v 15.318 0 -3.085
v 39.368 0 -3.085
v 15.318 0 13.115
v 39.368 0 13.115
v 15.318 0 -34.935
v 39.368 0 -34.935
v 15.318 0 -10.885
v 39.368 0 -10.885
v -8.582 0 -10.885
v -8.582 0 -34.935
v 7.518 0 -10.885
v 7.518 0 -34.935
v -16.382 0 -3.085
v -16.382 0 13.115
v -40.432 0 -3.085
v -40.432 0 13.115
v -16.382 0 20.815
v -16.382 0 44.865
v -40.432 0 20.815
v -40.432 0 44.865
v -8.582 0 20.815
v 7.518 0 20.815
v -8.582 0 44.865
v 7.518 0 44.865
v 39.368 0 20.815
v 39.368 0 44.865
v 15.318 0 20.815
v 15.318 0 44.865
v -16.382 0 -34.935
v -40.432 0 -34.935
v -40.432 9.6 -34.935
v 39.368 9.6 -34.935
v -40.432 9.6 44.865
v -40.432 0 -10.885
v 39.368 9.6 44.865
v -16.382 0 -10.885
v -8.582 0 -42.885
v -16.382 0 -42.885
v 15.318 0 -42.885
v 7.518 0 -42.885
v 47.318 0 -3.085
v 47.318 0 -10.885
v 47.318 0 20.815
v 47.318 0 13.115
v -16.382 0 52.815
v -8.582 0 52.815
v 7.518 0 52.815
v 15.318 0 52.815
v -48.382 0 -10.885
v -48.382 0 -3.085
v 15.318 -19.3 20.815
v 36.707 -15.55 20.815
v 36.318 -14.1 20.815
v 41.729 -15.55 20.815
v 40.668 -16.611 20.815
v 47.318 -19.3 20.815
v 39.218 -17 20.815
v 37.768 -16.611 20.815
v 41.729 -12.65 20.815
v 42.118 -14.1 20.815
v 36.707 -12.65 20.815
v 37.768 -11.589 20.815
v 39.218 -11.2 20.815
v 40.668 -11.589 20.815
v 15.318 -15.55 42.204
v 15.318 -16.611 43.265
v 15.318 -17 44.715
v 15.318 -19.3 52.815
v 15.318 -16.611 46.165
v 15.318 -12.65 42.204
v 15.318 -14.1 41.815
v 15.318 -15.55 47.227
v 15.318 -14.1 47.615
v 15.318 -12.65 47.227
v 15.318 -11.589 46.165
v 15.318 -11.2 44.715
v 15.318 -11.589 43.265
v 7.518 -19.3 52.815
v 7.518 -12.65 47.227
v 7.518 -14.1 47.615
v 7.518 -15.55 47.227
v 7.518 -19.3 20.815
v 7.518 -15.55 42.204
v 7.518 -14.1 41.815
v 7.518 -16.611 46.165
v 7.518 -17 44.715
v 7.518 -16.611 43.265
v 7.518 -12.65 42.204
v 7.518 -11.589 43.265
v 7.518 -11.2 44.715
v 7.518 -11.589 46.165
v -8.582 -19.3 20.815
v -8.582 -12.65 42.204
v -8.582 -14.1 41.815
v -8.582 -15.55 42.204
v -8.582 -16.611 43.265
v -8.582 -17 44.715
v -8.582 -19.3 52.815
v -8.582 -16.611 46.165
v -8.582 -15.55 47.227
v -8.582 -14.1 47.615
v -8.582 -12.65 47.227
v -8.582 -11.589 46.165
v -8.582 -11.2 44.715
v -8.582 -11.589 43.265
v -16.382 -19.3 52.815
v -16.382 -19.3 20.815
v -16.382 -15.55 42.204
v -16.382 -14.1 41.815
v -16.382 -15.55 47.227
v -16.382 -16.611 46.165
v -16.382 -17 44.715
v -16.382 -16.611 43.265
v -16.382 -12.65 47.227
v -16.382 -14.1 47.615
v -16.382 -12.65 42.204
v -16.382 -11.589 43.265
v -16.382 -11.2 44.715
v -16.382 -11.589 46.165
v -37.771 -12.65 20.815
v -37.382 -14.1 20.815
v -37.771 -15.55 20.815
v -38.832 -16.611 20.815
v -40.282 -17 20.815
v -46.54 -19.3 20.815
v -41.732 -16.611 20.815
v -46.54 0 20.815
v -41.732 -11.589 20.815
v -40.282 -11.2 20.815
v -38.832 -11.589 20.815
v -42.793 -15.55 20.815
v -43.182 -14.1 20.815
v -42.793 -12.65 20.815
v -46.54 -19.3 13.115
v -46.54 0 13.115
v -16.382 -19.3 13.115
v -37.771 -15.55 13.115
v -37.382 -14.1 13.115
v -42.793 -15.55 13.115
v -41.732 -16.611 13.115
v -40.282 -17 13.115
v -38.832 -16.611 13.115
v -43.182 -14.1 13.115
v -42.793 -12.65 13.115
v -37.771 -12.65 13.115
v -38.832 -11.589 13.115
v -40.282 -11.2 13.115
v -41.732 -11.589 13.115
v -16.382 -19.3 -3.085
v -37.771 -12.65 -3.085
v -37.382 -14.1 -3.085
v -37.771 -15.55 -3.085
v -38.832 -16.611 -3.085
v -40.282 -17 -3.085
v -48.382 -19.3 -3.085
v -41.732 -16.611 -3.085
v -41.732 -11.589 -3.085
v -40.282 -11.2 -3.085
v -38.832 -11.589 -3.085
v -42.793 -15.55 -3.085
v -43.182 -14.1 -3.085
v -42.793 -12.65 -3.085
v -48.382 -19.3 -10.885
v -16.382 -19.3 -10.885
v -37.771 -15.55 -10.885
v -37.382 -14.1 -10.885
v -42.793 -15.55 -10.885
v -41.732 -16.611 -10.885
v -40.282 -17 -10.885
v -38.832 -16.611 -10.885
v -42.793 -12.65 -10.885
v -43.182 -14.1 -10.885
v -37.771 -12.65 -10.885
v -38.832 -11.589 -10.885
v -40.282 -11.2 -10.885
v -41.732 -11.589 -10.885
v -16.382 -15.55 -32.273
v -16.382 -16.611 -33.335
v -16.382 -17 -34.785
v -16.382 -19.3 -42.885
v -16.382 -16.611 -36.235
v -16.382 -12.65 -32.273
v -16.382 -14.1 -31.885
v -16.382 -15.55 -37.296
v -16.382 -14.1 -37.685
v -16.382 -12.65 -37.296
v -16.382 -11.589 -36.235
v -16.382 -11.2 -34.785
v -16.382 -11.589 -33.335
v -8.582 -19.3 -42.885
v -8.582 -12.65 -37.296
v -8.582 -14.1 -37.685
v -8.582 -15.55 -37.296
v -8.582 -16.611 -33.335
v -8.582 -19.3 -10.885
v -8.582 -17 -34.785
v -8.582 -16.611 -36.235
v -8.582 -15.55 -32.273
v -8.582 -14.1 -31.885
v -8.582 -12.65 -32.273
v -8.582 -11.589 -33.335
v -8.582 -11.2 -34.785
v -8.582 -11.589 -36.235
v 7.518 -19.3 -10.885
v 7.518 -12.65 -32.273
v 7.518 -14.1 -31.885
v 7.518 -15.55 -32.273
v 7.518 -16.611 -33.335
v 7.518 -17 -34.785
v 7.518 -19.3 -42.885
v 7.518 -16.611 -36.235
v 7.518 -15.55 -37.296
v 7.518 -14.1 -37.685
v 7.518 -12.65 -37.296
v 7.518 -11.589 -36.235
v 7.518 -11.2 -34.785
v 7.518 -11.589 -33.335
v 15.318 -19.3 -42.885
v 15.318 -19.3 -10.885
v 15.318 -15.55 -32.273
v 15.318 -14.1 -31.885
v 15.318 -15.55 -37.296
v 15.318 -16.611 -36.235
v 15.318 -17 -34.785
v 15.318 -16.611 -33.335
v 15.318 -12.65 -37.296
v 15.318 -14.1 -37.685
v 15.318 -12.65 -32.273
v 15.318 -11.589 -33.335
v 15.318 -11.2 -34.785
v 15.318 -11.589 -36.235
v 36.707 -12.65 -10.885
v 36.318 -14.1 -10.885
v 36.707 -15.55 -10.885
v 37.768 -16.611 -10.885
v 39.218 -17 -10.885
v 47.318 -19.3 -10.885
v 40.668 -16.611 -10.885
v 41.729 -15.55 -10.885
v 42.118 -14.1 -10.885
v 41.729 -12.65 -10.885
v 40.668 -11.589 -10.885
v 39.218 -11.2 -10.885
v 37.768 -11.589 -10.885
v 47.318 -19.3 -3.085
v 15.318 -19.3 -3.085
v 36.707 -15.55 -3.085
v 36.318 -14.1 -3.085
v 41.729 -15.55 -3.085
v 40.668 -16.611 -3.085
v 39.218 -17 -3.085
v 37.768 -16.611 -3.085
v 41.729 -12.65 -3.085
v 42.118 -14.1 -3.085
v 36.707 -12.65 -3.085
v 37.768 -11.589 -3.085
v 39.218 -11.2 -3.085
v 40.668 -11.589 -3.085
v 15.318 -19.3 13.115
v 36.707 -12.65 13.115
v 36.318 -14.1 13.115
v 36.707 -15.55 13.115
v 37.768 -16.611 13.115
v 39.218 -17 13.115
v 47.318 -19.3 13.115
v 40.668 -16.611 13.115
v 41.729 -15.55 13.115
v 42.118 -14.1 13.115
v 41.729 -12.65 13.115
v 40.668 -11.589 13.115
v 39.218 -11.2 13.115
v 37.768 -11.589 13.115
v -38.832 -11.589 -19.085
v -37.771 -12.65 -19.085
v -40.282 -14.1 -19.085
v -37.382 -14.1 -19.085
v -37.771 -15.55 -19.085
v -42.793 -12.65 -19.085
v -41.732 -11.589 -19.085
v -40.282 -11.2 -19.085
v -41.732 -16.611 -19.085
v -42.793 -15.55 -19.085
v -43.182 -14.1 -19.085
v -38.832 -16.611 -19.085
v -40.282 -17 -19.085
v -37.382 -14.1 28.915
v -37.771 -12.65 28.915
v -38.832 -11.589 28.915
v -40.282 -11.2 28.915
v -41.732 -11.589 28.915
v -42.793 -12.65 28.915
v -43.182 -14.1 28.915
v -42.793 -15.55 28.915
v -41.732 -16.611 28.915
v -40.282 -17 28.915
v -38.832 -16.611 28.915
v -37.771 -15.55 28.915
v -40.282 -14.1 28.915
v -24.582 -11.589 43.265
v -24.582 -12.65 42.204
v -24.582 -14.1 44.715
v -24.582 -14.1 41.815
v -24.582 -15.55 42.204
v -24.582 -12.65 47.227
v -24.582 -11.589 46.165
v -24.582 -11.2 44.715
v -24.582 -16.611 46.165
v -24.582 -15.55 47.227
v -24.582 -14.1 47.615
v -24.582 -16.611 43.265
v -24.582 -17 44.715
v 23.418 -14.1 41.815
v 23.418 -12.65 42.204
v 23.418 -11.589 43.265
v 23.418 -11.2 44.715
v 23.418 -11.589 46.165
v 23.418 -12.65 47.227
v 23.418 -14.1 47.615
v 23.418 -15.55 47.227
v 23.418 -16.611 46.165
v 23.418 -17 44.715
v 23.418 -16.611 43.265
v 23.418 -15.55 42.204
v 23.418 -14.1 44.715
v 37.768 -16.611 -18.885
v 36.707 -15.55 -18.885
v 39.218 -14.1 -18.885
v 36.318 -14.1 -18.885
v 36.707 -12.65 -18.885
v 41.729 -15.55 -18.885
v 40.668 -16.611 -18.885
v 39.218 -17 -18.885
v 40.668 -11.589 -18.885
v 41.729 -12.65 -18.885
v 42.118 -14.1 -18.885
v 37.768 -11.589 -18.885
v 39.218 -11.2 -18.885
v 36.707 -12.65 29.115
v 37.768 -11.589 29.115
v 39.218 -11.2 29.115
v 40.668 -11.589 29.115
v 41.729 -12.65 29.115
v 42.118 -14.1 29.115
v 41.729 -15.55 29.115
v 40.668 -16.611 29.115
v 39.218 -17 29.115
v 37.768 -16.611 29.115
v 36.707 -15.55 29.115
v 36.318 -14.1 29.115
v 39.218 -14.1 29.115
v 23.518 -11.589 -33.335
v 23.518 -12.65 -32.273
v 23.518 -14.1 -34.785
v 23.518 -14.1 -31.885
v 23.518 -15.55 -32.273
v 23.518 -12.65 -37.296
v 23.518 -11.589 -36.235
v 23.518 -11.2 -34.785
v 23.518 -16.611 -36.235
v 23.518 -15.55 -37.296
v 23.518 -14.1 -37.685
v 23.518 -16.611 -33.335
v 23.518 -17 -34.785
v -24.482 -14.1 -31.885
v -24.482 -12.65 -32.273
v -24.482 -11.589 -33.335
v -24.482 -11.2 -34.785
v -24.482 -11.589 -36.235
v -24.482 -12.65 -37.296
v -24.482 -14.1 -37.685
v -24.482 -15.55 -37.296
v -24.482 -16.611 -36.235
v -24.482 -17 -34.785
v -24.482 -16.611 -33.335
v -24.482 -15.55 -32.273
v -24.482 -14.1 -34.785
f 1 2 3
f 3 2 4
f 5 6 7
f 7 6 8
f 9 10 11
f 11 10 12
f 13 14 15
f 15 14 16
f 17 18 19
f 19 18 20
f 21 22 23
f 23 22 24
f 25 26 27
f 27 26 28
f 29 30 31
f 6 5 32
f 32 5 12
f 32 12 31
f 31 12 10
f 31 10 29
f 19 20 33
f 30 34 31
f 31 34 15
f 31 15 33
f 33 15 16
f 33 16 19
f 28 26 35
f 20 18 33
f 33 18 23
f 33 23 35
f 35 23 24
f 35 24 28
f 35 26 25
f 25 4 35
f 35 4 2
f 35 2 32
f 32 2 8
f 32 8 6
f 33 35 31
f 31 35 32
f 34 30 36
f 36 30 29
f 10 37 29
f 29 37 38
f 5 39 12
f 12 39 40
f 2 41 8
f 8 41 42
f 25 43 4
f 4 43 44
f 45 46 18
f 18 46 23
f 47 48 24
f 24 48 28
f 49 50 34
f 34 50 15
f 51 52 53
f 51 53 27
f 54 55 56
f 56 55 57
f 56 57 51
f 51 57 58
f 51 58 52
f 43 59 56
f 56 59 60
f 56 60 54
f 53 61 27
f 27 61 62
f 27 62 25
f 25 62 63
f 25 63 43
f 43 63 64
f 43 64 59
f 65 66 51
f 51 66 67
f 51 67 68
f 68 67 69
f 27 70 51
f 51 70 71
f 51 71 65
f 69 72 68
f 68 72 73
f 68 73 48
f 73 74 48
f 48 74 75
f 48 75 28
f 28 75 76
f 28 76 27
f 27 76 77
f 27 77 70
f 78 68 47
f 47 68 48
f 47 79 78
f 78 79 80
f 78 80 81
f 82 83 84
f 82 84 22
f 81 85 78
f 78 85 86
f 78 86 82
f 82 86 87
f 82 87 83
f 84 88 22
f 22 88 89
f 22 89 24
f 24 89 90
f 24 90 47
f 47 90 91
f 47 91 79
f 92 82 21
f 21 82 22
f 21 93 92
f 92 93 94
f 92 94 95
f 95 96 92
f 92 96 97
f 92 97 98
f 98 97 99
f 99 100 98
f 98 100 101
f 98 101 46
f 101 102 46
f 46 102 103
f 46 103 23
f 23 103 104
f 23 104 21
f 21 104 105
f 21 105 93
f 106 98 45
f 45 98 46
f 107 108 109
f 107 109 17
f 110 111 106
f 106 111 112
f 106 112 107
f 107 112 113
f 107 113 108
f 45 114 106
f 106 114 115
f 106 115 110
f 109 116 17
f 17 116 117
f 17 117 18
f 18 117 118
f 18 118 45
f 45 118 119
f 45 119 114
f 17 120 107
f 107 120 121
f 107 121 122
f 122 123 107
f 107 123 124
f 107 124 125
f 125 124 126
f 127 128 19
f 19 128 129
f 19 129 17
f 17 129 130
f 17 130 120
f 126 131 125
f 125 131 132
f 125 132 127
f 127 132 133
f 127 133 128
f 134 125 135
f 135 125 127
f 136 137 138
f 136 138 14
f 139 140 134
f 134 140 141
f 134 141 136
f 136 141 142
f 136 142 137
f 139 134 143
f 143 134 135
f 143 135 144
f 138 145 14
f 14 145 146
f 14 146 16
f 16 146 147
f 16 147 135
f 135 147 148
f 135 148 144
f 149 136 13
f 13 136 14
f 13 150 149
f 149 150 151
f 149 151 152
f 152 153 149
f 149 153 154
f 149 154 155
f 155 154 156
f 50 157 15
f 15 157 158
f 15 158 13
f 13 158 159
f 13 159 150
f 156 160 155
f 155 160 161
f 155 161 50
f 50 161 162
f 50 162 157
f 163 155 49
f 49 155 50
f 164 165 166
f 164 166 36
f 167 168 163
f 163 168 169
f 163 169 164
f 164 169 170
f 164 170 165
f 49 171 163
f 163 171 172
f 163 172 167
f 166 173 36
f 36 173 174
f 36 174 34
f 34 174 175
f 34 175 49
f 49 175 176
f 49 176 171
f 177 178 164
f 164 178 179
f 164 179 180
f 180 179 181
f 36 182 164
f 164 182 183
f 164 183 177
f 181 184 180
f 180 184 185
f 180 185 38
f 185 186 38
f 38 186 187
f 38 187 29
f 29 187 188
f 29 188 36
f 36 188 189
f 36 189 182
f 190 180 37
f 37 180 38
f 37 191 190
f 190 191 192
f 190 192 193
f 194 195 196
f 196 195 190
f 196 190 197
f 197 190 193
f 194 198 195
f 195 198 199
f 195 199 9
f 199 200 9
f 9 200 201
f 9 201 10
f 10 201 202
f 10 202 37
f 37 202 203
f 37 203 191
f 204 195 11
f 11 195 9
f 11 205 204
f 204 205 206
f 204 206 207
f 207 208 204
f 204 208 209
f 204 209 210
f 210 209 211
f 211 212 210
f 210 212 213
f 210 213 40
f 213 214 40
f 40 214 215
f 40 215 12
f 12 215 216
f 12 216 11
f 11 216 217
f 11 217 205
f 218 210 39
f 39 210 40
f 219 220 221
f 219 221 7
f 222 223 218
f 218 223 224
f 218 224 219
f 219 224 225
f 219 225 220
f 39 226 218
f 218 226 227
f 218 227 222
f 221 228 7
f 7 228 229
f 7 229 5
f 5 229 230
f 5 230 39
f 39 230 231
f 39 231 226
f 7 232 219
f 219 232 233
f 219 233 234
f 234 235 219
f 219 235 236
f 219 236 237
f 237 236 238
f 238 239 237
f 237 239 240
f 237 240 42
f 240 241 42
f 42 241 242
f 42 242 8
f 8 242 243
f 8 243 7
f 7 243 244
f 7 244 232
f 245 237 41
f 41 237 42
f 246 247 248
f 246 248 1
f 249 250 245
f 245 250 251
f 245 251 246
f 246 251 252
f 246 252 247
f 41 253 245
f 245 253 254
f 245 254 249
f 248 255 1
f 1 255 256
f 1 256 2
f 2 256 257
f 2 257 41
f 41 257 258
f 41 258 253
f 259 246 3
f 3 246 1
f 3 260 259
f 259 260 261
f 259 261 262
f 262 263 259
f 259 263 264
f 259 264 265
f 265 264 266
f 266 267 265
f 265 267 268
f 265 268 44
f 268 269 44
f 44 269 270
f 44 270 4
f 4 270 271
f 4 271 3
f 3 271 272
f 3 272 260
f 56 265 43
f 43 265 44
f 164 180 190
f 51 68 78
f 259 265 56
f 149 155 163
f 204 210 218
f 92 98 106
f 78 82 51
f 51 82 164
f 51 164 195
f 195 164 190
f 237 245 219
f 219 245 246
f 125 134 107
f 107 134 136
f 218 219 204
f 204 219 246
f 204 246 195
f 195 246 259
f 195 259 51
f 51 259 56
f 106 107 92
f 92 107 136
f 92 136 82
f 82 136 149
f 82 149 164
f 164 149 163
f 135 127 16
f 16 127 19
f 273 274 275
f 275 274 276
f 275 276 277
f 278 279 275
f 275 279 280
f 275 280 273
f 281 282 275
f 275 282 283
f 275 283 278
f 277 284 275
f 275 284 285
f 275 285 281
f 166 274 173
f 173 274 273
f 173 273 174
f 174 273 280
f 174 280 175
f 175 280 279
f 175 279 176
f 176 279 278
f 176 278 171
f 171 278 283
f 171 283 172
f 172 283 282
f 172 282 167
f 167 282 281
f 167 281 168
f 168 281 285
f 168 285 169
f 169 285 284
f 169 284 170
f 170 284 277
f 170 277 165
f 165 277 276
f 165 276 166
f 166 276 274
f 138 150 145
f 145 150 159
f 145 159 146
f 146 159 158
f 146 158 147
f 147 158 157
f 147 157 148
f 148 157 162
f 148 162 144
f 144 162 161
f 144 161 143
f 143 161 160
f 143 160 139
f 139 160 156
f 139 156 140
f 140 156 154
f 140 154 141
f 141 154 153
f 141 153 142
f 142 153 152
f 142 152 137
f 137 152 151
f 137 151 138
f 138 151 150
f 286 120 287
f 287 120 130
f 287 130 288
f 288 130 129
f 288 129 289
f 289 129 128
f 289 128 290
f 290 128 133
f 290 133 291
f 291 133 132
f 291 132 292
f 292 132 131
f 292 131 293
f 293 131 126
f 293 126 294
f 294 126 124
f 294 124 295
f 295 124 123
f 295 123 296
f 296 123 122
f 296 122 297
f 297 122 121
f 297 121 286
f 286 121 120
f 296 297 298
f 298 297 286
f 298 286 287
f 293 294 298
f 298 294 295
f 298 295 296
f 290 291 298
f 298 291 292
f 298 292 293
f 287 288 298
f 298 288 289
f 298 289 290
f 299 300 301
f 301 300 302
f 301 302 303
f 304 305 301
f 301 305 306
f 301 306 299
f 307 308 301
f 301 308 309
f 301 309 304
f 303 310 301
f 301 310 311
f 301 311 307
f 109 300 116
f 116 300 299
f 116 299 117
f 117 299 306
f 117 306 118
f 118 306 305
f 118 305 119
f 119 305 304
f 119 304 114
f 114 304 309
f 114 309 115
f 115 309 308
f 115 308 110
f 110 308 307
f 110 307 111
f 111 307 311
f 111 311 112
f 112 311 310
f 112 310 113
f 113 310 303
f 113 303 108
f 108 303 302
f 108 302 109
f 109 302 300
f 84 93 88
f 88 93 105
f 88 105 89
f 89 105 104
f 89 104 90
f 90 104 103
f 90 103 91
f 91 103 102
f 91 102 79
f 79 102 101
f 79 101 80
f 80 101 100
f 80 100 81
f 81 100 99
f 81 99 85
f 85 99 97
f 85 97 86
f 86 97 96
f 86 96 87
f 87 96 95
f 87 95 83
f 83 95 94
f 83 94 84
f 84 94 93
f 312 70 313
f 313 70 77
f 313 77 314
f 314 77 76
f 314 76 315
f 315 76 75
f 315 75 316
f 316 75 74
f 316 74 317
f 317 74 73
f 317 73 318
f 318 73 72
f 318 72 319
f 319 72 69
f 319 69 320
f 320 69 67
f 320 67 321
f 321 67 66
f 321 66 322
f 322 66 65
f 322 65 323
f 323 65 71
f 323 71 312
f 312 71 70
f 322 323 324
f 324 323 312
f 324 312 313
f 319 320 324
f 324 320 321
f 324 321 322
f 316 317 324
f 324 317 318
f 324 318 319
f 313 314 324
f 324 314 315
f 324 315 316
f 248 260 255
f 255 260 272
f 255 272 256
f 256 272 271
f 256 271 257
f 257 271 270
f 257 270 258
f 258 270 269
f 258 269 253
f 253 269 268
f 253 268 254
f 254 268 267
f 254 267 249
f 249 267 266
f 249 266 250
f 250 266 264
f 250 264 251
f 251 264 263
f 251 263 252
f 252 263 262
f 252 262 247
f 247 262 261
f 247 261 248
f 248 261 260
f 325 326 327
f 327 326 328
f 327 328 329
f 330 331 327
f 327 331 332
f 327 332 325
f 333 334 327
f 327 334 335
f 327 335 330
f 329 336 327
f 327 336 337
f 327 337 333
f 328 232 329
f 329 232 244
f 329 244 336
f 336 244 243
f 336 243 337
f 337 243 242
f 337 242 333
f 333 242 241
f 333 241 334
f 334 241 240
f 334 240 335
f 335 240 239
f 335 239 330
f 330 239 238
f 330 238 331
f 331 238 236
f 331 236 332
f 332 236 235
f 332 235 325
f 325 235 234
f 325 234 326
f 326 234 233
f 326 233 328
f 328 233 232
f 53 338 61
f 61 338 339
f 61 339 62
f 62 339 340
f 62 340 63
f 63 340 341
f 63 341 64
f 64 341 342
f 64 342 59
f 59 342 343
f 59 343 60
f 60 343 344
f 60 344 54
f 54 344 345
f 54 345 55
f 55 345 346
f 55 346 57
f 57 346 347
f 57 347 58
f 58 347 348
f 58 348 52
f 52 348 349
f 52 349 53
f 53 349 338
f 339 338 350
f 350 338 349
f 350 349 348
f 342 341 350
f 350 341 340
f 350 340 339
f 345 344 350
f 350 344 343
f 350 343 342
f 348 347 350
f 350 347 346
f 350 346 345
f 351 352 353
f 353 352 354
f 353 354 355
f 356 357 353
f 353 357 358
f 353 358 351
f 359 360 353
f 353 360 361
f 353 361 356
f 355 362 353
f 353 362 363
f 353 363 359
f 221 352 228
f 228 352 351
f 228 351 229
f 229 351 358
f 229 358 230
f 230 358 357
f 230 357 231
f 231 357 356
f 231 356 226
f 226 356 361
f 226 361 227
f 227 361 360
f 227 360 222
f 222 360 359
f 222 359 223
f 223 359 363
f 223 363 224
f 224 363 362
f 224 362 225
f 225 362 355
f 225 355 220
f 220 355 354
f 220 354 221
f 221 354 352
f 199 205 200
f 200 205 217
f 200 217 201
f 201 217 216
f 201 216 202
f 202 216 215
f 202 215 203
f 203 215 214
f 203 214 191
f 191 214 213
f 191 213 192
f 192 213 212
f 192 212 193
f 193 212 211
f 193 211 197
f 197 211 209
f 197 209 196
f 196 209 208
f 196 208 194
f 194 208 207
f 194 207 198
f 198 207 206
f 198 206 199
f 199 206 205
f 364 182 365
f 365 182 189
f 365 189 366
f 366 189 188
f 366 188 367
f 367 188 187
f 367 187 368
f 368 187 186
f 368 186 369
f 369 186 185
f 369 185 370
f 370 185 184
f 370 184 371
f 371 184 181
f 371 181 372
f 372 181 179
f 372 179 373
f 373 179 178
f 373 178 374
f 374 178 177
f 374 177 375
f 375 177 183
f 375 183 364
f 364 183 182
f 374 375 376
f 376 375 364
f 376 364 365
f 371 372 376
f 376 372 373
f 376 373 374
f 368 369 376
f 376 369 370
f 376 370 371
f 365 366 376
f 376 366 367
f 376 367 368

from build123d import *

# Parameters (mm, degrees)
SKETCH1_W                = 79.8
SKETCH1_H                = 79.8
BOSS_EXTRUDE1_DEPTH      = 9.6
SKETCH3_W                = 93.857769302
SKETCH3_H                = 7.7
SKETCH3_W_2              = 31.7
SKETCH3_H_2              = 31.7
SKETCH3_W_3              = 95.7
SKETCH3_H_3              = 7.8
SKETCH3_W_4              = 7.8
SKETCH3_H_4              = 95.7
BOSS_EXTRUDE2_DEPTH      = 19.3
BOSS_EXTRUDE3_DEPTH      = 32
BOSS_EXTRUDE3_DEPTH_BACK = 16
SKETCH4_R                = 2.9
BOSS_EXTRUDE4_DEPTH      = 32
BOSS_EXTRUDE4_DEPTH_BACK = 16
SKETCH5_R                = 2.9
BOSS_EXTRUDE5_DEPTH      = 32
BOSS_EXTRUDE5_DEPTH_BACK = 16
SKETCH6_R                = 2.9
BOSS_EXTRUDE6_DEPTH      = 32
BOSS_EXTRUDE6_DEPTH_BACK = 16
SKETCH7_R                = 2.9


with BuildPart() as part:
    # Sketch1 → Boss-Extrude1 (new body)
    with BuildSketch(Plane(origin=(0, 0, 0), x_dir=(1, 0, 0), z_dir=(0, 1, 0))):
        with Locations((-0.532, -4.965333333)):
            Rectangle(SKETCH1_W, SKETCH1_H)
    extrude(amount=BOSS_EXTRUDE1_DEPTH)

    # Sketch3 → Boss-Extrude2 (add)
    with BuildSketch(Plane.XZ):
        with Locations((0.389115349, 16.965333333)):
            Rectangle(SKETCH3_W, SKETCH3_H)
        with Locations((-0.532, 4.965333333)):
            Rectangle(SKETCH3_W_2, SKETCH3_H_2)
        with Locations((-0.532, -6.984666667)):
            Rectangle(SKETCH3_W_3, SKETCH3_H_3)
        with Locations((-12.482, 4.965333333)):
            Rectangle(SKETCH3_W_4, SKETCH3_H_4)
        with Locations((11.418, 4.965333333)):
            Rectangle(SKETCH3_W_4, SKETCH3_H_4)
    extrude(amount=BOSS_EXTRUDE2_DEPTH)

    # Sketch4 → Boss-Extrude3 (add, two sides: drawn at the far end of the back side and taken through both)
    with BuildSketch(Plane.XY.offset(-3.084666667).offset(-BOSS_EXTRUDE3_DEPTH_BACK)):
        with Locations((-40.282, -14.1)):
            Circle(SKETCH4_R)
    extrude(amount=BOSS_EXTRUDE3_DEPTH + BOSS_EXTRUDE3_DEPTH_BACK)

    # Sketch5 → Boss-Extrude4 (add, two sides: drawn at the far end of the back side and taken through both)
    with BuildSketch(Plane(origin=(-8.582, 0, 0), x_dir=(0, 0, -1), z_dir=(1, 0, 0)).offset(-BOSS_EXTRUDE4_DEPTH_BACK)):
        with Locations((-44.715333333, -14.1)):
            Circle(SKETCH5_R)
    extrude(amount=BOSS_EXTRUDE4_DEPTH + BOSS_EXTRUDE4_DEPTH_BACK)

    # Sketch6 → Boss-Extrude5 (add, two sides: drawn at the far end of the back side and taken through both)
    with BuildSketch(Plane(origin=(0, 0, 13.115333333), x_dir=(-1, 0, 0), z_dir=(0, 0, -1)).offset(-BOSS_EXTRUDE5_DEPTH_BACK)):
        with Locations(Location((-39.218, -14.1, 0), (0, 0, 180))):
            Circle(SKETCH6_R)
    extrude(amount=BOSS_EXTRUDE5_DEPTH + BOSS_EXTRUDE5_DEPTH_BACK)

    # Sketch7 → Boss-Extrude6 (add, two sides: drawn at the far end of the back side and taken through both)
    with BuildSketch(Plane.ZY.offset(-7.518).offset(-BOSS_EXTRUDE6_DEPTH_BACK)):
        with Locations((-34.784666667, -14.1)):
            Circle(SKETCH7_R)
    extrude(amount=BOSS_EXTRUDE6_DEPTH + BOSS_EXTRUDE6_DEPTH_BACK)


solid = part.part
